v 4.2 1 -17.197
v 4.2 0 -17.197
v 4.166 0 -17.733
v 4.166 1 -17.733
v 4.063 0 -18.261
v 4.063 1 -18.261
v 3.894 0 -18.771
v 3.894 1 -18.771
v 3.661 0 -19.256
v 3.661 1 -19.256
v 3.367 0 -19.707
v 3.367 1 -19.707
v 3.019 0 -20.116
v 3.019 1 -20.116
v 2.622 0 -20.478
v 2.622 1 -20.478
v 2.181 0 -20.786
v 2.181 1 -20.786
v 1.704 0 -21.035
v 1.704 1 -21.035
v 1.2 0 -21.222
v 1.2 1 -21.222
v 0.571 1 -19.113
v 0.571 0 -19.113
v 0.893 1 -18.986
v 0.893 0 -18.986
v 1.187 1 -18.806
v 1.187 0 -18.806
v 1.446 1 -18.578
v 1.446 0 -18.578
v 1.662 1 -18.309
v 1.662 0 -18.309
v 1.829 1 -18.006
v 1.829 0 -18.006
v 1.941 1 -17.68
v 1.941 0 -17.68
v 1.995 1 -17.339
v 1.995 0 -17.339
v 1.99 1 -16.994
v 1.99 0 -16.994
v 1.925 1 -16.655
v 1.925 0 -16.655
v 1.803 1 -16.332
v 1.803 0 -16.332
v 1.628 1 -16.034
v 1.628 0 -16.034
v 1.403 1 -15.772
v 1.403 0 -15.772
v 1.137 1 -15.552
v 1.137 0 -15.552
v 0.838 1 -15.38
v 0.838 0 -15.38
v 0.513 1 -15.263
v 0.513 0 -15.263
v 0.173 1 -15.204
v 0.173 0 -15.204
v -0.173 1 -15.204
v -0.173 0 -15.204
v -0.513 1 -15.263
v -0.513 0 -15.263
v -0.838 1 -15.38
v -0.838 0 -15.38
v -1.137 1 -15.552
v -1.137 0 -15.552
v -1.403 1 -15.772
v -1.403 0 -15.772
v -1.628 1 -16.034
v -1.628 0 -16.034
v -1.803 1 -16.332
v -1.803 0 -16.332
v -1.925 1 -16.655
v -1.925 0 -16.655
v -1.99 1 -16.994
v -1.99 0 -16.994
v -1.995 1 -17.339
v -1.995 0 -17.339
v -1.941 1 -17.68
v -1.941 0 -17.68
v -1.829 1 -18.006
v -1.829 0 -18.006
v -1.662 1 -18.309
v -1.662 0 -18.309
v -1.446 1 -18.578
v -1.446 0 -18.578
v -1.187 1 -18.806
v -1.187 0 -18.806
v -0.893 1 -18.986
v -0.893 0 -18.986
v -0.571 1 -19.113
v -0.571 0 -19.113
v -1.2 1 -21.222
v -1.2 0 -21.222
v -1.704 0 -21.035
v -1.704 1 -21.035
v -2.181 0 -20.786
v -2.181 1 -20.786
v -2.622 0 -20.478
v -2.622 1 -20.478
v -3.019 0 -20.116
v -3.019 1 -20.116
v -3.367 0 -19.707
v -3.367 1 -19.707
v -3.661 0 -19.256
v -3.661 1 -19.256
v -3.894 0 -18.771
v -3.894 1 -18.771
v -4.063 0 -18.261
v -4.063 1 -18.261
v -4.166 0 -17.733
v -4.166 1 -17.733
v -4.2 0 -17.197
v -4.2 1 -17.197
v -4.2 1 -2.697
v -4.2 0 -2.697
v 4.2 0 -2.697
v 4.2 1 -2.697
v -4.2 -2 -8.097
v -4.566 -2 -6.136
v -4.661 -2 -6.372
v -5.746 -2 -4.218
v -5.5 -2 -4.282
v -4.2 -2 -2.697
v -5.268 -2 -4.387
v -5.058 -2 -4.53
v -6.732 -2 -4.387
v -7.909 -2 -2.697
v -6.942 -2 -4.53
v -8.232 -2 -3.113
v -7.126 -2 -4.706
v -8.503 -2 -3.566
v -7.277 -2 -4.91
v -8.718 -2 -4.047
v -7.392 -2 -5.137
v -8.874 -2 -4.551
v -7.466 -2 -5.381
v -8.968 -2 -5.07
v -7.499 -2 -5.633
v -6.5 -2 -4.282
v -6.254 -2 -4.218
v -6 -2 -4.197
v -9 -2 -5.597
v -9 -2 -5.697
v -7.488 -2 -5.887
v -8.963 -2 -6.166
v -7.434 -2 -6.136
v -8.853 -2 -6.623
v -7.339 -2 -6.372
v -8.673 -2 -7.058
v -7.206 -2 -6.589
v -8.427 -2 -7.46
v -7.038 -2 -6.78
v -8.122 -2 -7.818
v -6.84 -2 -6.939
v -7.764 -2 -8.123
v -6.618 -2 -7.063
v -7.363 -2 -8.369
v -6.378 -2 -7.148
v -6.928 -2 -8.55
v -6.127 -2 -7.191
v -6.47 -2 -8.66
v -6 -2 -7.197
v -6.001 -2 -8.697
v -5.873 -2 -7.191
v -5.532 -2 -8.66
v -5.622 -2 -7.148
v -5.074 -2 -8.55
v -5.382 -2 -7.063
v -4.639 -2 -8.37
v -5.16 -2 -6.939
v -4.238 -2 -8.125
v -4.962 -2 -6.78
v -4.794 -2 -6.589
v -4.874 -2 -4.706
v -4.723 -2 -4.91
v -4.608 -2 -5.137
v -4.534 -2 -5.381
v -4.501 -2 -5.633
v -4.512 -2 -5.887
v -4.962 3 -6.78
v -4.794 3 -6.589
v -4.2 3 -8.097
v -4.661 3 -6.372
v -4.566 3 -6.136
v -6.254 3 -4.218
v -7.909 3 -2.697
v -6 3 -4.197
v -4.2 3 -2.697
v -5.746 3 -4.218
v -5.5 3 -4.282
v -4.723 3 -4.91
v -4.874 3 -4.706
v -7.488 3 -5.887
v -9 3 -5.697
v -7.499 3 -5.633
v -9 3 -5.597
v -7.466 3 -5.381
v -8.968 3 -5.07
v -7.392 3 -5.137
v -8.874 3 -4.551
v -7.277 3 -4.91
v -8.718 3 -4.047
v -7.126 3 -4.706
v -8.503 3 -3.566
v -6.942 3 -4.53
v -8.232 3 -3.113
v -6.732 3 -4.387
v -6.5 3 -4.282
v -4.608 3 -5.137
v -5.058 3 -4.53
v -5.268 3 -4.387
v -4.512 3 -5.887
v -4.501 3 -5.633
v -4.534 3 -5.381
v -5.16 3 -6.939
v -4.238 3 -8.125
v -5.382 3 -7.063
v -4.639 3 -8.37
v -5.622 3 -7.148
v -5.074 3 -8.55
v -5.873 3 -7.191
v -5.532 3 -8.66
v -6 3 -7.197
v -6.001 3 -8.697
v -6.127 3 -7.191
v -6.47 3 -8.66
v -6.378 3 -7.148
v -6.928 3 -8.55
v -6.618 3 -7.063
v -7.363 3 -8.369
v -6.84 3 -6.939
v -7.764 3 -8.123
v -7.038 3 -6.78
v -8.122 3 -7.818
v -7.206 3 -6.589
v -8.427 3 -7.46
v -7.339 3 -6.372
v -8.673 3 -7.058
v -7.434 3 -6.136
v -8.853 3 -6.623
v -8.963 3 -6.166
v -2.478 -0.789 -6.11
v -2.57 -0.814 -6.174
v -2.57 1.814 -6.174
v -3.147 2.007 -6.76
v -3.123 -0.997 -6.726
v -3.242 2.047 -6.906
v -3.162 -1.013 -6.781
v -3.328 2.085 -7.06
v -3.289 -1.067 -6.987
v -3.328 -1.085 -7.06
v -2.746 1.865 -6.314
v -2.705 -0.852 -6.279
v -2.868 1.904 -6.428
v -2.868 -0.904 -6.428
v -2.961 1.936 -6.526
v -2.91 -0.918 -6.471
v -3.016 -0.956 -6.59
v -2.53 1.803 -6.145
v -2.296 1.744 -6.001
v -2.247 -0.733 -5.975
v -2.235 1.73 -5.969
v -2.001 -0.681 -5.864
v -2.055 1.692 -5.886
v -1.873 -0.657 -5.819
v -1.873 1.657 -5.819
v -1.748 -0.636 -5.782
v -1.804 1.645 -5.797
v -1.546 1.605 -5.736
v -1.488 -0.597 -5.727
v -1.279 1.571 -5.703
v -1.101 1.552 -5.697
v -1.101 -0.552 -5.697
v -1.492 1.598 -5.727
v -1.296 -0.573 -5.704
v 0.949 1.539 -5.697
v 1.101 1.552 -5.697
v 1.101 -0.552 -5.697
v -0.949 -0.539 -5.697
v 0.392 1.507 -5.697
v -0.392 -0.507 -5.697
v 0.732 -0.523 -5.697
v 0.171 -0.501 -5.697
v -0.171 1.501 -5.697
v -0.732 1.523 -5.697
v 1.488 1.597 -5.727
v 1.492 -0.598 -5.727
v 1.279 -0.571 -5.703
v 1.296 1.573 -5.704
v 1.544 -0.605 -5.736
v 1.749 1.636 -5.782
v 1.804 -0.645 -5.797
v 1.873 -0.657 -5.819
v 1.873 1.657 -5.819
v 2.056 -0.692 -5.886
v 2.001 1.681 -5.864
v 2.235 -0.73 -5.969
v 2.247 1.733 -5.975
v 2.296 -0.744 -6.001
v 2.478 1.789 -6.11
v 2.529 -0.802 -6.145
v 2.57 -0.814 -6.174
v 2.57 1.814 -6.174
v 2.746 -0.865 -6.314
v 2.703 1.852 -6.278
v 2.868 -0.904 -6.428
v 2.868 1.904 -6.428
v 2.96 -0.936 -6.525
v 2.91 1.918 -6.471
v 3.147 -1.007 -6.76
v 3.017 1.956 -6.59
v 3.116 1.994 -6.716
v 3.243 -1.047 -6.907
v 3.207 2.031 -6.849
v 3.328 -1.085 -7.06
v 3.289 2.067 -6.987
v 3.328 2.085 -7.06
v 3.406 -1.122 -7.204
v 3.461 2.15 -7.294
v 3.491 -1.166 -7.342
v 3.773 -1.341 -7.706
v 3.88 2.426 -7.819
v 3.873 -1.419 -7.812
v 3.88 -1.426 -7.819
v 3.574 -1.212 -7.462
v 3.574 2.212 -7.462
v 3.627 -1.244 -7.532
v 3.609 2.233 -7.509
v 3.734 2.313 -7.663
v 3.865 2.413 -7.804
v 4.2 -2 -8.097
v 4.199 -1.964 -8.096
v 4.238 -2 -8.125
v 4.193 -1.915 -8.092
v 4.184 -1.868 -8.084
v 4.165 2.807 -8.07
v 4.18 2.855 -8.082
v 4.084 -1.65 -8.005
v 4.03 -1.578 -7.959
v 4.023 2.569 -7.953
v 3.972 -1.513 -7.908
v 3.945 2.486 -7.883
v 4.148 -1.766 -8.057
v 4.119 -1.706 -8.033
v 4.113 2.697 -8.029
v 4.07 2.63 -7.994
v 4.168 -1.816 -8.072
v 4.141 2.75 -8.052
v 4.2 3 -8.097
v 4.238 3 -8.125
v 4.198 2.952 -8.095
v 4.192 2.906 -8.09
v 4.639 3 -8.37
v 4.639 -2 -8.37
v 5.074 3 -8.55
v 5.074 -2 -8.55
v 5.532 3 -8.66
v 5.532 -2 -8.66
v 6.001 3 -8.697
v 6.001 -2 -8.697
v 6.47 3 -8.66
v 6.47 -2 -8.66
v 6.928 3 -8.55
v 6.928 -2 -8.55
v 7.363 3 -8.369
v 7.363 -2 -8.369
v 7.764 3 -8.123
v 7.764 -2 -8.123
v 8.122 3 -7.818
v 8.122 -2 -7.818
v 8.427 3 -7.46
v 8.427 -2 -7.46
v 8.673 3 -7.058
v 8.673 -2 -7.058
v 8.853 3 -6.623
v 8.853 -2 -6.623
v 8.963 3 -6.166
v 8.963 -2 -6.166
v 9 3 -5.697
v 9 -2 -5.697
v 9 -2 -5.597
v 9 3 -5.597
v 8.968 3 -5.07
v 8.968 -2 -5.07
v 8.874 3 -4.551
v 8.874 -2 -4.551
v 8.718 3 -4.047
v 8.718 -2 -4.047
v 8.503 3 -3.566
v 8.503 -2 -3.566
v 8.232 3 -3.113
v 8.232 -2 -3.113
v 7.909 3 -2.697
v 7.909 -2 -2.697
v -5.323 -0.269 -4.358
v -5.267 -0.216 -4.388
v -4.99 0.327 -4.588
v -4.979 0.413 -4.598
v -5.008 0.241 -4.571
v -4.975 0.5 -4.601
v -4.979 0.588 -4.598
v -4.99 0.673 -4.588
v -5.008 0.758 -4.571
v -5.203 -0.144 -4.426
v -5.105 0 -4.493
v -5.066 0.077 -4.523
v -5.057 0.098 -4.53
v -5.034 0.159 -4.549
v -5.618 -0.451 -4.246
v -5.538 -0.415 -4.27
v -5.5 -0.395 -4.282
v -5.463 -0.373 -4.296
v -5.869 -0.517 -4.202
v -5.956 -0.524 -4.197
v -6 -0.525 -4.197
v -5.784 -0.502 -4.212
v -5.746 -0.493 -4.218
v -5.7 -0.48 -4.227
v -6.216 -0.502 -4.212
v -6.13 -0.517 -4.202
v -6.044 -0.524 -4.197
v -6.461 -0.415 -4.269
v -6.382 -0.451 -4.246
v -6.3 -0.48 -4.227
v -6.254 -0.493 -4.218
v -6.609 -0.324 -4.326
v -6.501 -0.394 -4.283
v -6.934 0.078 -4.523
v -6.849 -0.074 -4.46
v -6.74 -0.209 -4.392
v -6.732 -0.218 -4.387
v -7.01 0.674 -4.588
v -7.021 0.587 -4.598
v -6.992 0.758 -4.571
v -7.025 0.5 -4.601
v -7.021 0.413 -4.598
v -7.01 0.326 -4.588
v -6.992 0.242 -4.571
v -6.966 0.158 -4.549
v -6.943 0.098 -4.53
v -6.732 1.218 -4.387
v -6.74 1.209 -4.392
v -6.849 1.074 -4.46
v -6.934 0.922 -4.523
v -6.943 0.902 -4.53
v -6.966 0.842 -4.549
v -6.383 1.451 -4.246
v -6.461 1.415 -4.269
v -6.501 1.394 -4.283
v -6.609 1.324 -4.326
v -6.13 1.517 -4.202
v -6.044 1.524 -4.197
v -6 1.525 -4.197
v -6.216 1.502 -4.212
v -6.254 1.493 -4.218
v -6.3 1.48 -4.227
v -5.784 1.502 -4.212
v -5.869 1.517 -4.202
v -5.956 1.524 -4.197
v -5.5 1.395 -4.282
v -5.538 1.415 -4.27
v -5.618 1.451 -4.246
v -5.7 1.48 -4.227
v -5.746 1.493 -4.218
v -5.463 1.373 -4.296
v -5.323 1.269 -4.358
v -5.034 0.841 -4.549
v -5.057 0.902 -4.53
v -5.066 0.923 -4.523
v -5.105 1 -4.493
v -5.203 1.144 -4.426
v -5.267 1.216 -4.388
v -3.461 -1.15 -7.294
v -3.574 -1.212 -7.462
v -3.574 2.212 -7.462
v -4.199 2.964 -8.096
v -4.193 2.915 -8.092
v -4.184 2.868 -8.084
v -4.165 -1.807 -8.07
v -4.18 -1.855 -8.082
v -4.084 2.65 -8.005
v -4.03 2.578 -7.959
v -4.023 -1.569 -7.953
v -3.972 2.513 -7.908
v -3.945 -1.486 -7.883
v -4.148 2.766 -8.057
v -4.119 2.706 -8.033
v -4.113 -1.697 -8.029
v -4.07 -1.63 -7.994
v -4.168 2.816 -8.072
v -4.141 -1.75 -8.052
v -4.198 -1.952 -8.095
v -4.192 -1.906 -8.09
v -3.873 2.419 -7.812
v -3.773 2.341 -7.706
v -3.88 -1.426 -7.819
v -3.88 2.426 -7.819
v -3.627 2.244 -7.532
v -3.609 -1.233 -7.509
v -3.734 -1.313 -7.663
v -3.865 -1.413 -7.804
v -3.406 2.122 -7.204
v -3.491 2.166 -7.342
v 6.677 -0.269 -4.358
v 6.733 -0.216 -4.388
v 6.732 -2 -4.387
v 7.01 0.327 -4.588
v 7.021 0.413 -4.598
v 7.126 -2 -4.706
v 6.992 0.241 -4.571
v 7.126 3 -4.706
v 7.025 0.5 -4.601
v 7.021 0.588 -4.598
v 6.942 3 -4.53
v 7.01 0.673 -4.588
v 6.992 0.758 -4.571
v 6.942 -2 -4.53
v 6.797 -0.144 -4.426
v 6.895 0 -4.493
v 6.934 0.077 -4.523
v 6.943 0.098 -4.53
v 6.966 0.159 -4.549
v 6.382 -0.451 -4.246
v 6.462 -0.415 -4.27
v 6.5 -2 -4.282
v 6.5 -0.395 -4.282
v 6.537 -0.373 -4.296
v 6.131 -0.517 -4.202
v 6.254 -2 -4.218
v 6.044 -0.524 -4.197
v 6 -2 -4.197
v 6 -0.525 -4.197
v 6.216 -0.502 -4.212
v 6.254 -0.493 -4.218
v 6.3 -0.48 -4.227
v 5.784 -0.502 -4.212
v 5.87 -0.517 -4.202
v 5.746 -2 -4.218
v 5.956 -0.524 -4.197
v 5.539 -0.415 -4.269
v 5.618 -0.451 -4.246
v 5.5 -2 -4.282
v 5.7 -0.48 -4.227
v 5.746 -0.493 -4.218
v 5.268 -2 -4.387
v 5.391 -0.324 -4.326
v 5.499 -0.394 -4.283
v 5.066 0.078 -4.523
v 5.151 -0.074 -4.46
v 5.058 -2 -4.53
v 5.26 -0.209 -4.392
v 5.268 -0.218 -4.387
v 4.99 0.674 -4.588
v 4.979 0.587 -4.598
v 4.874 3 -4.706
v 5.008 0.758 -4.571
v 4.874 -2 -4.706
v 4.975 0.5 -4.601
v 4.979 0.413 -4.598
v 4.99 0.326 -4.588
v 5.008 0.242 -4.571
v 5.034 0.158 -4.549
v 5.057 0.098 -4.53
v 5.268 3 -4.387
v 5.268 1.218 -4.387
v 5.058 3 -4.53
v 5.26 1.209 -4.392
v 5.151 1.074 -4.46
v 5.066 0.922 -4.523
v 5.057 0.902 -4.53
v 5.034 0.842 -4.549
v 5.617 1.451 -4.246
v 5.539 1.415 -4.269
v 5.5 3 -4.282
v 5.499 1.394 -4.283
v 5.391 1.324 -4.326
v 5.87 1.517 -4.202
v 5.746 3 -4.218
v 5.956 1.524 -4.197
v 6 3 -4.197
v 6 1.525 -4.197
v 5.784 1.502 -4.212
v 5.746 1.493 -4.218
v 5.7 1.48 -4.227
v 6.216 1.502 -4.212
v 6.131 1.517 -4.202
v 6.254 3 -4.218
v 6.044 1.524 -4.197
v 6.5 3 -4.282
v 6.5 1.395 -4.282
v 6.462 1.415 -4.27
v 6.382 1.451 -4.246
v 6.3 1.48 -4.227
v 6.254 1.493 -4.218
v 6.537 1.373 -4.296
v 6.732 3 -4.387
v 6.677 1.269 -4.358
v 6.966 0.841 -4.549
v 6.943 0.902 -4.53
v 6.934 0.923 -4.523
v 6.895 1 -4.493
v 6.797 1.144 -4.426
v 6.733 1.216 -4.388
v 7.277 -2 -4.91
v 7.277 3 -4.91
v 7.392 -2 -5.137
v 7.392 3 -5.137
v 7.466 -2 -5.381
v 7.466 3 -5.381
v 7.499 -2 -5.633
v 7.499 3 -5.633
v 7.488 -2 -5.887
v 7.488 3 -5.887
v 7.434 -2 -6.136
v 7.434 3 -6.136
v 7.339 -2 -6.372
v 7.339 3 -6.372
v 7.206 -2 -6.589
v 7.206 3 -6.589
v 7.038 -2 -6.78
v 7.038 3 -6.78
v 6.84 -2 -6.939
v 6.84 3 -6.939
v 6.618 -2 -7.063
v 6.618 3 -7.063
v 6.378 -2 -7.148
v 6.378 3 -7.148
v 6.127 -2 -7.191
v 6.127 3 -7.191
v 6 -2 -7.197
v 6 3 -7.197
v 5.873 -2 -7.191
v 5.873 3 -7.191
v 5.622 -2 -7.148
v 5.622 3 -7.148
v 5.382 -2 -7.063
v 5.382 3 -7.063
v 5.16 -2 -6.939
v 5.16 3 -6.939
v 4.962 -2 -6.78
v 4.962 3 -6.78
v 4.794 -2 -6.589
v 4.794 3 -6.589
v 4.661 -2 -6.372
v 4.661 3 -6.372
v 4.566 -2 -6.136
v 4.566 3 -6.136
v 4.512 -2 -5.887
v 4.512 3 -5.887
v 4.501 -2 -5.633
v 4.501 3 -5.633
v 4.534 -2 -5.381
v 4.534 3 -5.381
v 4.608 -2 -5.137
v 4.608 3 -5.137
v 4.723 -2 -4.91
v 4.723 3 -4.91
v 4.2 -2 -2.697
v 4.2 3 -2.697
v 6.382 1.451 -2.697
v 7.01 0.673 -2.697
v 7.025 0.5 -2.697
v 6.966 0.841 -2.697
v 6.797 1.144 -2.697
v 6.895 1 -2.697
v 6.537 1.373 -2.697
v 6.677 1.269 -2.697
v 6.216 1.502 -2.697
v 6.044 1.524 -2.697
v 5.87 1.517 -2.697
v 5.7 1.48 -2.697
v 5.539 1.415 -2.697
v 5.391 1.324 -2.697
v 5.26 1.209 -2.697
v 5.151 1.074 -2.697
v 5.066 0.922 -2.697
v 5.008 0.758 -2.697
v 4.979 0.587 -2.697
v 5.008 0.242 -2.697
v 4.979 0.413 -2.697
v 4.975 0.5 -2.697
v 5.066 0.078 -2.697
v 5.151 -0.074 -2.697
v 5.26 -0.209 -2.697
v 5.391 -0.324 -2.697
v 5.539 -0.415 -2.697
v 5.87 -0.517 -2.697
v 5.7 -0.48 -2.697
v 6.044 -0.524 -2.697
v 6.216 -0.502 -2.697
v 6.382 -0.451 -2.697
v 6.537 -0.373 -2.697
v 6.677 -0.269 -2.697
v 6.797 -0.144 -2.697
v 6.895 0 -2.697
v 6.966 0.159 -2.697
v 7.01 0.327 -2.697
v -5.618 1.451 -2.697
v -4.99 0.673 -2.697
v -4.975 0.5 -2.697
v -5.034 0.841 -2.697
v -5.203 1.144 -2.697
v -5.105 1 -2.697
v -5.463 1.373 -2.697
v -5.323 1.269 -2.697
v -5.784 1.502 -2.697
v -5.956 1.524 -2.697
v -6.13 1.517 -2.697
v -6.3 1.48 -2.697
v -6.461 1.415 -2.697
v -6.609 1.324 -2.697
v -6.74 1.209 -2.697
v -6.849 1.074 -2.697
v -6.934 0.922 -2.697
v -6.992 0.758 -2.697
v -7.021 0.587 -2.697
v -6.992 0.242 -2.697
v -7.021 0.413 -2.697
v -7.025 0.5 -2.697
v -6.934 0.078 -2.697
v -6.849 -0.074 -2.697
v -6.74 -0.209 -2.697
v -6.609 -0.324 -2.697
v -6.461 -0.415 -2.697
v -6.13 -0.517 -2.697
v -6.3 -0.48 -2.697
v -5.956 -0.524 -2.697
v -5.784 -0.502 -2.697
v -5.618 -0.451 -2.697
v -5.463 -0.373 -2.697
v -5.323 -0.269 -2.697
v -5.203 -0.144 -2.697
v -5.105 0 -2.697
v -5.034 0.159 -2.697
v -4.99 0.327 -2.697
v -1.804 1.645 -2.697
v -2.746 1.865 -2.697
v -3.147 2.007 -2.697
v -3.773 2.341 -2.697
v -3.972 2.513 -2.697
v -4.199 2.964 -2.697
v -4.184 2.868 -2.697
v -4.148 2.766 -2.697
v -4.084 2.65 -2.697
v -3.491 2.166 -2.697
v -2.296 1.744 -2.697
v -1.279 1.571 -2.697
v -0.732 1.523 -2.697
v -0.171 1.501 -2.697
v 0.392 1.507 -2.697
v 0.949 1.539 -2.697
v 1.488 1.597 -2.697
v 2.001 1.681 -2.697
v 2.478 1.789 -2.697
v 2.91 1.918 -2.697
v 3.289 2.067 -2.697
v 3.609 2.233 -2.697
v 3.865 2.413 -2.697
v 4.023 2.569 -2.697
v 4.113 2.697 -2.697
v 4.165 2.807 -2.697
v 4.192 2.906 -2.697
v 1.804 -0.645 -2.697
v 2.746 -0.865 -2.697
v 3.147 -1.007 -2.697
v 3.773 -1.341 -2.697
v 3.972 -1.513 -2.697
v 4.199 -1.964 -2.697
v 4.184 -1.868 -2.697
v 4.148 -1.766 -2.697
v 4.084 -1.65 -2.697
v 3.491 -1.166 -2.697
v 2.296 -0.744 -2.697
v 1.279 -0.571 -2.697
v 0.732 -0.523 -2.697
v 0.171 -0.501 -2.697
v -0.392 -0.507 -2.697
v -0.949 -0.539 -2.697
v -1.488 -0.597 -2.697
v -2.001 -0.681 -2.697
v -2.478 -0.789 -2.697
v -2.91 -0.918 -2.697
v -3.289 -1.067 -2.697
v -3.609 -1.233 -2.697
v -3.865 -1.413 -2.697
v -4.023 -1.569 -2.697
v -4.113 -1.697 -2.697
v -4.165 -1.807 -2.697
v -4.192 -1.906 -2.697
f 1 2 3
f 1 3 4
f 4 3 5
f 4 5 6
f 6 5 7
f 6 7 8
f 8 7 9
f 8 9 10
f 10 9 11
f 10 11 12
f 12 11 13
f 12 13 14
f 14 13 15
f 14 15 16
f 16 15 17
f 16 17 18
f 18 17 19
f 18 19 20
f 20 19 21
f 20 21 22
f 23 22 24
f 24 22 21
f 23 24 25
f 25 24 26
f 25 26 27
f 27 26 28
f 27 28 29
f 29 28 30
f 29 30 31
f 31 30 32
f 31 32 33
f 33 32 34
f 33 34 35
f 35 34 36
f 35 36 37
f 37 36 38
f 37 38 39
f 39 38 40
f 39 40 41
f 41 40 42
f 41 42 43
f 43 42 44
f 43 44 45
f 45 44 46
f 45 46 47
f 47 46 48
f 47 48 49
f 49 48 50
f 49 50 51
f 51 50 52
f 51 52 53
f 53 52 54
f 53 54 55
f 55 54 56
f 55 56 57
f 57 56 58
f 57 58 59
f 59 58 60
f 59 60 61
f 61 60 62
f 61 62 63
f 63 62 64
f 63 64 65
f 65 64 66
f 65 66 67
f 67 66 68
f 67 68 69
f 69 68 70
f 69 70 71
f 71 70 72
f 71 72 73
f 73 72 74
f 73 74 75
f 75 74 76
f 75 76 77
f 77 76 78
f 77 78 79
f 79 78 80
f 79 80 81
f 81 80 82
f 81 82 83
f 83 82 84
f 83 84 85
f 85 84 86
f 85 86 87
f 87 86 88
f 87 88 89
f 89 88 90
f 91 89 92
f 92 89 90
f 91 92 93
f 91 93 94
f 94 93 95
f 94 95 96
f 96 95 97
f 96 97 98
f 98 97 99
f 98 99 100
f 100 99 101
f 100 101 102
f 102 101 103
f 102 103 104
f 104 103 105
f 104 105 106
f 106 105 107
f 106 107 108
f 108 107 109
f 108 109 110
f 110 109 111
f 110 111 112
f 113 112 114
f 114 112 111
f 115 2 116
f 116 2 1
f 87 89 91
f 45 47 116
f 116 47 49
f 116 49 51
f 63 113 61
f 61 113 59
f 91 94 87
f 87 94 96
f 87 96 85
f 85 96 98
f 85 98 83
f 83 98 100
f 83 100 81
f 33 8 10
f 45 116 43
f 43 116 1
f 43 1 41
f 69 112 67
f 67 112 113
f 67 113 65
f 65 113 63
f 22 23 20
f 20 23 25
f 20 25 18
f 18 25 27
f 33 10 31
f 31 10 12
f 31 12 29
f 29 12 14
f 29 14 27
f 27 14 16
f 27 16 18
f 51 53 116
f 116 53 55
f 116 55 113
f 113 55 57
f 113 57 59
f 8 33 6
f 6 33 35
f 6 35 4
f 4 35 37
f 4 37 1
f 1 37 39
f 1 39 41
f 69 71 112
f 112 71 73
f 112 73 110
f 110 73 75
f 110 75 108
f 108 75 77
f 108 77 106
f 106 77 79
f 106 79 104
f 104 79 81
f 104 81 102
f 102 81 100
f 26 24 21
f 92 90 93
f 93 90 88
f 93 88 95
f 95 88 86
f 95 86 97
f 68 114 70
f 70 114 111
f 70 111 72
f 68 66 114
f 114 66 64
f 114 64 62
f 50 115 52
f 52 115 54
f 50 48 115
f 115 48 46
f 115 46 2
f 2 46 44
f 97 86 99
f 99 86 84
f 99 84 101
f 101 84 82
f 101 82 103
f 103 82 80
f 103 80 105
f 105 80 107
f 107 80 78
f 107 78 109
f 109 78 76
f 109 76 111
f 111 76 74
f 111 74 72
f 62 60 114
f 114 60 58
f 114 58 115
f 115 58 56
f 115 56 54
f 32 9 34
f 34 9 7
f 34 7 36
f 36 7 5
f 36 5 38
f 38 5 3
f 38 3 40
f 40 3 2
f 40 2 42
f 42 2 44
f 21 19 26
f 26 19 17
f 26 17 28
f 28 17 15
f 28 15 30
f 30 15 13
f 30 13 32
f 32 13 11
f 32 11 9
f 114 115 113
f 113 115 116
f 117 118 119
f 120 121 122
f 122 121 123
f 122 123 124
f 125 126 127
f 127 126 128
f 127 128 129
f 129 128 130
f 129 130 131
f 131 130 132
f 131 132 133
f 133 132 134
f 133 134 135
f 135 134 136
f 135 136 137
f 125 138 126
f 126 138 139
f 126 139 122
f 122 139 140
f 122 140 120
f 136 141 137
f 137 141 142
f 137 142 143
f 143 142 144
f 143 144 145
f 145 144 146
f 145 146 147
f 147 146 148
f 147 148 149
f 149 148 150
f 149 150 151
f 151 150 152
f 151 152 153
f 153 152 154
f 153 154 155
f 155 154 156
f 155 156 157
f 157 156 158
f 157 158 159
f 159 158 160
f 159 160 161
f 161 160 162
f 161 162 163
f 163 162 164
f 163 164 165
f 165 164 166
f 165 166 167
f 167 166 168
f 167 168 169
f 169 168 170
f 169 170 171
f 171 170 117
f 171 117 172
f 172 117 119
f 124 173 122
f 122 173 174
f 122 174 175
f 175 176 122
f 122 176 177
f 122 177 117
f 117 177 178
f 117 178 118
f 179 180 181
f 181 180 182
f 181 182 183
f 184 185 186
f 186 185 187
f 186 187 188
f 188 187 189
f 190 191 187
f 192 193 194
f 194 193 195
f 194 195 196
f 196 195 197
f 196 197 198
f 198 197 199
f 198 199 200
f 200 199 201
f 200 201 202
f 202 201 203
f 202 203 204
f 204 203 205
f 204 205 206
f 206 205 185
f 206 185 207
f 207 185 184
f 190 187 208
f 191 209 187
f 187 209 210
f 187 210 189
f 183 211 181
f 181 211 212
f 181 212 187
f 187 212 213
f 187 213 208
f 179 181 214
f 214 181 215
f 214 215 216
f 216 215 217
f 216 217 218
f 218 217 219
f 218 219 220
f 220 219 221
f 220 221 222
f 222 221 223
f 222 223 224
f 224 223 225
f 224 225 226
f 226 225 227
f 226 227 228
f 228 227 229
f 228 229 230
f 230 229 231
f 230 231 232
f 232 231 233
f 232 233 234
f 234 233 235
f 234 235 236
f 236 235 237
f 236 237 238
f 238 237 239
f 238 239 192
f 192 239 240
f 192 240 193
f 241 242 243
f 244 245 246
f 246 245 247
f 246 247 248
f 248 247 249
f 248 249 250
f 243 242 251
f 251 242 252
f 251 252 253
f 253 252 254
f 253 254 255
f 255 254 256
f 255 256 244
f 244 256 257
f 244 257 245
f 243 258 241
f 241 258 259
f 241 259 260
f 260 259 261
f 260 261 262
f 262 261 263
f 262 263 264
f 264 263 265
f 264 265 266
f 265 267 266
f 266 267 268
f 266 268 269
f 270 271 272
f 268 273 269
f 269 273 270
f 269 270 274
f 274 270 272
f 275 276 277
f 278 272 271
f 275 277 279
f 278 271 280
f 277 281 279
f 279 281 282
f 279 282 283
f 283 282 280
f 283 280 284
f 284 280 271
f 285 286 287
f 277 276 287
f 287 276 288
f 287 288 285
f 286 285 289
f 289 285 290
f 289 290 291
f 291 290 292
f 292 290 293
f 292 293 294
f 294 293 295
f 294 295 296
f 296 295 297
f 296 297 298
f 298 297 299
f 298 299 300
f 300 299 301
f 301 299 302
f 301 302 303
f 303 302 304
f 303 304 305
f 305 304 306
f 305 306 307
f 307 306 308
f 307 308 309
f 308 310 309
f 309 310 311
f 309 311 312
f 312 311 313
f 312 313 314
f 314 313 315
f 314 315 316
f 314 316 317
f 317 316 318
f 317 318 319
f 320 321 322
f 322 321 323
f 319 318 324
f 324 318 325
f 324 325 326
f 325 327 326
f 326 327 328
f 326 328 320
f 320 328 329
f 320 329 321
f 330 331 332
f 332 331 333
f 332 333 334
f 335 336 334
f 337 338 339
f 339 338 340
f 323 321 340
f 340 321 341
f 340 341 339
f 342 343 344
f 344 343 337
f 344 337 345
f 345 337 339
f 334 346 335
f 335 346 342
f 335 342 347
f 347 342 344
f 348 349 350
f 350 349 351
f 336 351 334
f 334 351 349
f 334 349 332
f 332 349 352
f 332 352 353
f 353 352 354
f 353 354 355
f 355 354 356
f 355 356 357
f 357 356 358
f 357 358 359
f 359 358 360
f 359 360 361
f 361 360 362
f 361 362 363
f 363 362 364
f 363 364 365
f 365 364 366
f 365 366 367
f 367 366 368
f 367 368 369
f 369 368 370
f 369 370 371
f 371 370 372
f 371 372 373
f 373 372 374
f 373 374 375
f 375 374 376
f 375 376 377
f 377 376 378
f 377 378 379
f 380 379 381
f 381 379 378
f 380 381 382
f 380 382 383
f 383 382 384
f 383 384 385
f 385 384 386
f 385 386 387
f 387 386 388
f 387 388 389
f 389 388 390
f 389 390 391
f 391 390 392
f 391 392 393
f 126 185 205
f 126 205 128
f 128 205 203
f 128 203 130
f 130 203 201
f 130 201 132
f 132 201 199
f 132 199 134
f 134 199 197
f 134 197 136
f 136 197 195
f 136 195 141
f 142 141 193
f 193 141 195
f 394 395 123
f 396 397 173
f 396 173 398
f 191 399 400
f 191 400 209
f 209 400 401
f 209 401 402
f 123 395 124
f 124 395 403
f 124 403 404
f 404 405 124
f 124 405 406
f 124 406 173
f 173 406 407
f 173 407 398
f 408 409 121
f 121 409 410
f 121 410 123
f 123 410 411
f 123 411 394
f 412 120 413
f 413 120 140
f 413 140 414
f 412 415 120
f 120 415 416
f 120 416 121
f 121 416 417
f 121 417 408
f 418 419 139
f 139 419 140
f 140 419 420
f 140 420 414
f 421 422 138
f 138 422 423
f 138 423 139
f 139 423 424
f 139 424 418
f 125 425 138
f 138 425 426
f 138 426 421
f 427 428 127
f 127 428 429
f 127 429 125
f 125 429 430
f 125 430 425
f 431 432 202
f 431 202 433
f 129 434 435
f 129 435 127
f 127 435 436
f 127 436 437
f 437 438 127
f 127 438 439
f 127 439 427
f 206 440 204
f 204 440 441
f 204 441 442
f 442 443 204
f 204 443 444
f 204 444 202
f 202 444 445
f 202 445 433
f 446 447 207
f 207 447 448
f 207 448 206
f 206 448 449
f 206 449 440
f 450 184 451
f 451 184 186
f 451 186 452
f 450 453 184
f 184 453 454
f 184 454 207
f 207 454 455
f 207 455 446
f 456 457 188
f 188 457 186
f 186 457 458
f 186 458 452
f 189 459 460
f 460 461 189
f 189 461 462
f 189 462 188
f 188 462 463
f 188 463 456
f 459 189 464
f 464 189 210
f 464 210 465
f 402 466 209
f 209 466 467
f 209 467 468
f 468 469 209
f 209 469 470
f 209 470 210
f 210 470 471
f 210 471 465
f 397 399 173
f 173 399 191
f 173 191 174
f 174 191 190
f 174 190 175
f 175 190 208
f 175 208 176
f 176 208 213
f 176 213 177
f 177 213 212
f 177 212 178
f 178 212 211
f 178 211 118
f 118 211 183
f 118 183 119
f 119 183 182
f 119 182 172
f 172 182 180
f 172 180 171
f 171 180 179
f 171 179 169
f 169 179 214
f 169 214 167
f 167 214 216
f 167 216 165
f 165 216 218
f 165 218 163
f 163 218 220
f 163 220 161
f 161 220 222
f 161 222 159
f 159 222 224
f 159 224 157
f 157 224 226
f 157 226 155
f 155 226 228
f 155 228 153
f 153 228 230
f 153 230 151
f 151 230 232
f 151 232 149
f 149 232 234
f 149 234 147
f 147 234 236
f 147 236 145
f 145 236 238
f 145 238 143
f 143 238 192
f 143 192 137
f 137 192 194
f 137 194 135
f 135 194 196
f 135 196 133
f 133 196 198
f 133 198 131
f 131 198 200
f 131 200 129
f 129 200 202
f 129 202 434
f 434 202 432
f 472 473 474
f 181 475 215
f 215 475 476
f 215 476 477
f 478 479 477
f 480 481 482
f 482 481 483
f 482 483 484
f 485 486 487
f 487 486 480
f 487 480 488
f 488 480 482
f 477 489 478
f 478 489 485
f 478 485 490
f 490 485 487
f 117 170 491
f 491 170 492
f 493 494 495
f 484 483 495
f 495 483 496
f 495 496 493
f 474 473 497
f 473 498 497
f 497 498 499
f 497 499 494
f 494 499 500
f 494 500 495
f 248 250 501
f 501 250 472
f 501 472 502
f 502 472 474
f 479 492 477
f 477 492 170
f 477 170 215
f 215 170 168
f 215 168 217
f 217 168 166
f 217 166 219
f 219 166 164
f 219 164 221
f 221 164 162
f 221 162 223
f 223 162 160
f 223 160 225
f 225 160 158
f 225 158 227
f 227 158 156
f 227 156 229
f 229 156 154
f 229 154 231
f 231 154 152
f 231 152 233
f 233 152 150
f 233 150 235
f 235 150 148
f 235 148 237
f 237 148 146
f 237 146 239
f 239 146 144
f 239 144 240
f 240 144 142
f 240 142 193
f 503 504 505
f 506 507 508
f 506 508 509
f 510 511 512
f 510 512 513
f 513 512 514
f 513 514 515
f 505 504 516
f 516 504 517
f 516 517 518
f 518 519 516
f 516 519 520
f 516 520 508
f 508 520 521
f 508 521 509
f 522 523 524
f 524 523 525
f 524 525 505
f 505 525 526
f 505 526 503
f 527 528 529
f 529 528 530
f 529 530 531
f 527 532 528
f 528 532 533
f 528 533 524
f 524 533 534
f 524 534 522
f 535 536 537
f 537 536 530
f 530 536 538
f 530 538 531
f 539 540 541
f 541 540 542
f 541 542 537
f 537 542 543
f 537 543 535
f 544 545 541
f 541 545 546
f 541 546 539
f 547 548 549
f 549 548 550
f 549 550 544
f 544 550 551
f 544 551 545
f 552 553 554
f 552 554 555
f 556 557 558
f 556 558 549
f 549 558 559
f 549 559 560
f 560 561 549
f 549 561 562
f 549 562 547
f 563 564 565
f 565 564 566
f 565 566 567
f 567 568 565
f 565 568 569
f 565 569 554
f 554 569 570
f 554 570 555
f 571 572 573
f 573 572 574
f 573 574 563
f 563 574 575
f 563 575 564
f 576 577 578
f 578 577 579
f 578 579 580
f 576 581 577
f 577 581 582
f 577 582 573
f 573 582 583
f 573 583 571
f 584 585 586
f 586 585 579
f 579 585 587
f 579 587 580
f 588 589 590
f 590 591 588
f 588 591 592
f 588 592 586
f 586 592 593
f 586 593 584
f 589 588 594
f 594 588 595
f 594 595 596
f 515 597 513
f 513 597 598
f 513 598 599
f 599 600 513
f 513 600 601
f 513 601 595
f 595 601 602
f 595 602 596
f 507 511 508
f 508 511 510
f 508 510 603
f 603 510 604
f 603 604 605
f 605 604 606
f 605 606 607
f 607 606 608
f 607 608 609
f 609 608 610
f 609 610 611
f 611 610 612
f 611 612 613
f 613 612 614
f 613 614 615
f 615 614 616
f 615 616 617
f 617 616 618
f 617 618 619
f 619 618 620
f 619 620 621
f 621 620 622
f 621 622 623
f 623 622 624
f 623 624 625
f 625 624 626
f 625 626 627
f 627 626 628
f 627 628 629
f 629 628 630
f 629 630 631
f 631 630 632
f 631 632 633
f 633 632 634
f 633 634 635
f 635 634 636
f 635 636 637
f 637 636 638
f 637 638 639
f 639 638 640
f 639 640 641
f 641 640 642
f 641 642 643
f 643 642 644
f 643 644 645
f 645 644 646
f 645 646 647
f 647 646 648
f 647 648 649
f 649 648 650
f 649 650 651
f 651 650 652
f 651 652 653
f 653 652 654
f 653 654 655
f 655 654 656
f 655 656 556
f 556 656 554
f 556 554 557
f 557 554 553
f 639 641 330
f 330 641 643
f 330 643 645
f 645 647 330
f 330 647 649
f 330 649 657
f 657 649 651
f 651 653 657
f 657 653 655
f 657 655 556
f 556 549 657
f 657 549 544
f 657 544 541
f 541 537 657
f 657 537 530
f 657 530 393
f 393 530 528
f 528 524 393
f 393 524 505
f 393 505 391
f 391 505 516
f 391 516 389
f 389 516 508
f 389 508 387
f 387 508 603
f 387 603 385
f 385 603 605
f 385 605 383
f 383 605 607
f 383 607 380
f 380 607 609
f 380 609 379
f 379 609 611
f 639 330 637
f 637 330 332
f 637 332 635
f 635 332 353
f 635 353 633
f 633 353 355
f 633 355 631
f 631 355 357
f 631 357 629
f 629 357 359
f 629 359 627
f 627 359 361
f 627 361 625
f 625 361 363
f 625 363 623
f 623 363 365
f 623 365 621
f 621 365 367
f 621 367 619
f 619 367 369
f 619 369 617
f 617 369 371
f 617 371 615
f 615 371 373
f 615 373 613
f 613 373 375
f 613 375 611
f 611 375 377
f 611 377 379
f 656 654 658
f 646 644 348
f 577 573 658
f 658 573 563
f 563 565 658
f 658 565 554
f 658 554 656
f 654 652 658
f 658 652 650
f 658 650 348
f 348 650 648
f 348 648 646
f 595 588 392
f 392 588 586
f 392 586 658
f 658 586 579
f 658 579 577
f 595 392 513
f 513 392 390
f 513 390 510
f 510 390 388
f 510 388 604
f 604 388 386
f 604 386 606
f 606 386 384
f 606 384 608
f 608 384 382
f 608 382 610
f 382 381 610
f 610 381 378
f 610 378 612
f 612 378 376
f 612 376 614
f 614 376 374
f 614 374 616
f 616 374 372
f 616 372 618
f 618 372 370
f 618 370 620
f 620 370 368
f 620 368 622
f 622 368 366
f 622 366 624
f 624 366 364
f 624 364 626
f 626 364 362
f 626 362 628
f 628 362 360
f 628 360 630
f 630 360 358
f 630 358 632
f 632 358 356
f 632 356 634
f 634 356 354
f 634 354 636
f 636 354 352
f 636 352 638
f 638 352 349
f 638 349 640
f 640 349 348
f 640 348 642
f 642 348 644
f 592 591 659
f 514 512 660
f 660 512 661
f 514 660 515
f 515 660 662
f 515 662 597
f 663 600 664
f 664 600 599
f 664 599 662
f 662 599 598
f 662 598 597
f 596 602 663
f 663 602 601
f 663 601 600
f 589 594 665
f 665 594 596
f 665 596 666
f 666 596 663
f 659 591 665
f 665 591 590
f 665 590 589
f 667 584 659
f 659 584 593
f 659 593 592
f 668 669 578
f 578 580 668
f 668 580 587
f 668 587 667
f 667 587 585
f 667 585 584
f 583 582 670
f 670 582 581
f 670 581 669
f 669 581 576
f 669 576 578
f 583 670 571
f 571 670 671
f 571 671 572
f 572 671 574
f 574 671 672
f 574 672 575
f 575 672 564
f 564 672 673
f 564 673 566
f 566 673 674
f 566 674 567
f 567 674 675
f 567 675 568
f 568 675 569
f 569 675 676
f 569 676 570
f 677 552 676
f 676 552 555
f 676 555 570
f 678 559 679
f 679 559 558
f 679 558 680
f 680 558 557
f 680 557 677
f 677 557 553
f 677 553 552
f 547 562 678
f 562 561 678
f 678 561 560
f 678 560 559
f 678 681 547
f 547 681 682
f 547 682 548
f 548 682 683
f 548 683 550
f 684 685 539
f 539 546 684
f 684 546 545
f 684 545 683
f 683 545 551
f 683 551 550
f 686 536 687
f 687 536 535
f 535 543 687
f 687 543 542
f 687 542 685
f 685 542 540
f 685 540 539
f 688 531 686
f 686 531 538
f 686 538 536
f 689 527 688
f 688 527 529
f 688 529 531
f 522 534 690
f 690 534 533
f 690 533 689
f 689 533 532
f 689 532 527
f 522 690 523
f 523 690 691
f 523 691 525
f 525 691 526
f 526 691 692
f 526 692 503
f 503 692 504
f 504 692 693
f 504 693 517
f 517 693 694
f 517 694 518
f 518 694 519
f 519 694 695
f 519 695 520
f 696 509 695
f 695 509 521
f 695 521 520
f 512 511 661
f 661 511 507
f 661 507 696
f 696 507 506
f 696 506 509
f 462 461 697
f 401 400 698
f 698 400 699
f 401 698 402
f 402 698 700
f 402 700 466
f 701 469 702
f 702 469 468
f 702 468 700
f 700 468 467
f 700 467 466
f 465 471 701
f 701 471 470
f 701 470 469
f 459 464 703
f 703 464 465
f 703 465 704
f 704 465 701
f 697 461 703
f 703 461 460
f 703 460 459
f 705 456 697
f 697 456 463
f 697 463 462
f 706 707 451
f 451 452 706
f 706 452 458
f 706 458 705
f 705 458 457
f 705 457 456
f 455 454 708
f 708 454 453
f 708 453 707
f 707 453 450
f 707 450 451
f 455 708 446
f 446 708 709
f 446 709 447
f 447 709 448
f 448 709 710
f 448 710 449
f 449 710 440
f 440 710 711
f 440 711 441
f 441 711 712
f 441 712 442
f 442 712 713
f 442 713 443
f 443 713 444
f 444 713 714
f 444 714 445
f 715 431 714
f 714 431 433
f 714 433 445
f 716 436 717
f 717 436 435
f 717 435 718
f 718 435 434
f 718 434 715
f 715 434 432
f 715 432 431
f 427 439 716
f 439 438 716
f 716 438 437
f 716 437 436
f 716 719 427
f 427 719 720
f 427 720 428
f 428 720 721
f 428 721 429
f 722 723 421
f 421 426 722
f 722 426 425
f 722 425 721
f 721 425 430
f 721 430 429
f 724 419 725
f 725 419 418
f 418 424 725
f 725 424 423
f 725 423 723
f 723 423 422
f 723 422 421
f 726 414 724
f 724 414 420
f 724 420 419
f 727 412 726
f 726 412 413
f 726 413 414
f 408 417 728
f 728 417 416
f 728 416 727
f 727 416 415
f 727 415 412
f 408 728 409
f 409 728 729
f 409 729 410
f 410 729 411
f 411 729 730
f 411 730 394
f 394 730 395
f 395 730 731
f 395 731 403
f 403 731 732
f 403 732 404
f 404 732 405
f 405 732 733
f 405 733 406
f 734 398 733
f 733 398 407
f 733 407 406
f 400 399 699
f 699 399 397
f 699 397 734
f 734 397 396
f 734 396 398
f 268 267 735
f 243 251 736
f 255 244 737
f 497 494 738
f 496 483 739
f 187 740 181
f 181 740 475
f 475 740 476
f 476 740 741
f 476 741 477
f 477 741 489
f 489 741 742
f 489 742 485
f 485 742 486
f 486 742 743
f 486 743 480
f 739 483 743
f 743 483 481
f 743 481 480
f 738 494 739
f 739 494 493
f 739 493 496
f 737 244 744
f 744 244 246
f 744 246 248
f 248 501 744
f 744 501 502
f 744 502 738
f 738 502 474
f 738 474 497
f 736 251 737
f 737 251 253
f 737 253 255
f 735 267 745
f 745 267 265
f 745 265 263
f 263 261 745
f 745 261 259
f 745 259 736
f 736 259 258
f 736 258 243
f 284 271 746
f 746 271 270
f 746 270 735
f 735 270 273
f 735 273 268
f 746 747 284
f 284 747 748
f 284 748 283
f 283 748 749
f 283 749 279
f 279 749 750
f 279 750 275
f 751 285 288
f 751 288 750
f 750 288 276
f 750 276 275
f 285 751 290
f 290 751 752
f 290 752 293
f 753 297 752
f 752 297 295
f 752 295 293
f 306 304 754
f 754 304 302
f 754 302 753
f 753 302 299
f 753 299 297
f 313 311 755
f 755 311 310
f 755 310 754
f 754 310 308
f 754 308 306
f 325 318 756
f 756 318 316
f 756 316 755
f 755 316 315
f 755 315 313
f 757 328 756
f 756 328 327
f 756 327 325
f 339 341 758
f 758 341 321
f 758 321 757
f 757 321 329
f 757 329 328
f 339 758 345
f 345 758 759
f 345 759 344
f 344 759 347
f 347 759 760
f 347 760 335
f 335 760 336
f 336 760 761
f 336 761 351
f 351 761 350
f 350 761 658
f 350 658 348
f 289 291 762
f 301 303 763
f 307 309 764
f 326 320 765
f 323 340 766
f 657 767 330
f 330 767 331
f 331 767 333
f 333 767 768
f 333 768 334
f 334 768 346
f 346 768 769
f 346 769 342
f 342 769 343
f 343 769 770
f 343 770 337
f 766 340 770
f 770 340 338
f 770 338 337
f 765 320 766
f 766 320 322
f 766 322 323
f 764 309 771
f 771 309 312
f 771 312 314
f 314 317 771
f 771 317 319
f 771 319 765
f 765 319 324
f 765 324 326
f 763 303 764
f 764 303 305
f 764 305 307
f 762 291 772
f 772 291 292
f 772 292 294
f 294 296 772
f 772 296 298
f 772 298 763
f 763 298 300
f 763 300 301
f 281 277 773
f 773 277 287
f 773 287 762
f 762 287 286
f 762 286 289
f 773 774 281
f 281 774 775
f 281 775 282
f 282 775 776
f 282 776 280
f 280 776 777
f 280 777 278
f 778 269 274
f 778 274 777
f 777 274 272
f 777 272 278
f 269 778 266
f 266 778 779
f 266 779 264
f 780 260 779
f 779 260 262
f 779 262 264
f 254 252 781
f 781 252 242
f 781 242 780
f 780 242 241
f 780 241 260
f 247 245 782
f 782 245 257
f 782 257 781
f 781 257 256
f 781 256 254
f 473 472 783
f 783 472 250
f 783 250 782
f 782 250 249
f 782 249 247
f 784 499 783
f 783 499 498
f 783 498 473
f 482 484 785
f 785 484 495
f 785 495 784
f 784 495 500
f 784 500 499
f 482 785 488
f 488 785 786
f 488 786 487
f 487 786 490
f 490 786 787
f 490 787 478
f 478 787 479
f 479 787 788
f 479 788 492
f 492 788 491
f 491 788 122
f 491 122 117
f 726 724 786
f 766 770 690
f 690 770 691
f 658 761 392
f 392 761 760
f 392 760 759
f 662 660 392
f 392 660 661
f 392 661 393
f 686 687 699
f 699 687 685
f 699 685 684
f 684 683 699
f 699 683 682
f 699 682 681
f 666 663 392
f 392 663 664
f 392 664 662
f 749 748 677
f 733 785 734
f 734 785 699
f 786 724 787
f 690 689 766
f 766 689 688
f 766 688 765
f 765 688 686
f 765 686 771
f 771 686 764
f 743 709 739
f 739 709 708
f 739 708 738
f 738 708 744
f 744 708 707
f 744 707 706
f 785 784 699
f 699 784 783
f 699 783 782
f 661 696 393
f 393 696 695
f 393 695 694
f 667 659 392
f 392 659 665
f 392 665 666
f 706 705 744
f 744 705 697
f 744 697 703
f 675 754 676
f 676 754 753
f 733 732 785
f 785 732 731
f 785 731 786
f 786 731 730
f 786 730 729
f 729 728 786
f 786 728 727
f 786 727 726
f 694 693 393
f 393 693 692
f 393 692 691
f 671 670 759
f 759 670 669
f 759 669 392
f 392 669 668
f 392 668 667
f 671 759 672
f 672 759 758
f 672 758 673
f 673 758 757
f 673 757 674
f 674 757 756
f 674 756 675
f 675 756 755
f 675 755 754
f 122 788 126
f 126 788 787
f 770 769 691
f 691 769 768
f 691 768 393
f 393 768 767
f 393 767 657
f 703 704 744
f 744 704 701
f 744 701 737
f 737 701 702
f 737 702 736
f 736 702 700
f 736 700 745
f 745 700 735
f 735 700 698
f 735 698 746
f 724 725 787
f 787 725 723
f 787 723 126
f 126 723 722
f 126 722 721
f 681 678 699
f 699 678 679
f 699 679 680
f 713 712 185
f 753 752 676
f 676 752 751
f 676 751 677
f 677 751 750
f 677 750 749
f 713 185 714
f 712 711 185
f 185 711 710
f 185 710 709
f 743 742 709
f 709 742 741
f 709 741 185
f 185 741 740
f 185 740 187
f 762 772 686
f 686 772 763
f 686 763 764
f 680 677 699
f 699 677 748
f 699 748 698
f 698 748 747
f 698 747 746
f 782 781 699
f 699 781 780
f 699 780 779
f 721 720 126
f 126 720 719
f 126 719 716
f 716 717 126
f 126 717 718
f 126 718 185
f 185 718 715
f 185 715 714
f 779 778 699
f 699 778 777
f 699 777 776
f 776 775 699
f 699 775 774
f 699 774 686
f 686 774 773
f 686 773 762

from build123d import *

# Parameters (mm, degrees)
BOSS_EXTRUDE1_DEPTH     = 1
BOSS_EXTRUDE2_START     = -3
SKETCH3_R               = 1.5
BOSS_EXTRUDE2_DEPTH     = 5
CUT_EXTRUDE1_START      = -3.40484
SKETCH4_R               = 1.025
CUT_EXTRUDE1_DEPTH      = 3.388831
SKETCH5_RX              = 4.2
SKETCH5_RY              = 1.5
CUT_EXTRUDE2_DEPTH      = 16.524922359
CUT_EXTRUDE2_DEPTH_BACK = 5.5000001
SKETCH6_W               = 18
SKETCH6_H               = 1.5
CUT_EXTRUDE3_DEPTH      = 5


with BuildPart() as part:
    # Sketch2 → Boss-Extrude1 (new body)
    with BuildSketch(Plane(origin=(0, 0, 0), x_dir=(1, 0, 0), z_dir=(0, 1, 0))):
        with BuildLine():
            Line((-0.571428571, 19.113275972), (-1.2, 21.221568636))
            ThreePointArc((-1.2, 21.221568636), (-3.367491648, 19.706626356), (-4.2, 17.196646277))
            Line((-4.2, 17.196646277), (-4.2, 1.196646277))
            Line((-4.2, 1.196646277), (4.2, 1.196646277))
            Line((4.2, 1.196646277), (4.2, 17.196646277))
            ThreePointArc((4.2, 17.196646277), (3.367491648, 19.706626356), (1.2, 21.221568636))
            Line((1.2, 21.221568636), (0.571428571, 19.113275972))
            ThreePointArc((0.571428571, 19.113275972), (0, 15.196646277), (-0.571428571, 19.113275972))
        make_face()
    extrude(amount=BOSS_EXTRUDE1_DEPTH)


with BuildPart() as body_2:
    # Sketch3 → Boss-Extrude2 (new body)
    with BuildSketch(Plane.XZ.offset(BOSS_EXTRUDE2_START)):
        with BuildLine():
            ThreePointArc((9, -5.596646277), (7.711269837, -2.485376439), (4.6, -1.196646277))
            Line((4.6, -1.196646277), (-4.6, -1.196646277))
            ThreePointArc((-4.6, -1.196646277), (-7.711269837, -2.485376439), (-9, -5.596646277))
            Line((-9, -5.596646277), (-9, -5.696646277))
            ThreePointArc((-9, -5.696646277), (-8.121320344, -7.81796662), (-6, -8.696646277))
            ThreePointArc((-6, -8.696646277), (-4.433301096, -8.255054873), (-3.327829372, -7.06028264))
            ThreePointArc((-3.327829372, -7.06028264), (-2.406602934, -6.064639113), (-1.101020514, -5.696646277))
            Line((-1.101020514, -5.696646277), (1.101020514, -5.696646277))
            ThreePointArc((1.101020514, -5.696646277), (2.406602934, -6.064639113), (3.327829372, -7.06028264))
            ThreePointArc((3.327829372, -7.06028264), (4.433301096, -8.255054873), (6, -8.696646277))
            ThreePointArc((6, -8.696646277), (8.121320344, -7.81796662), (9, -5.696646277))
            Line((9, -5.696646277), (9, -5.596646277))
        make_face()
        with Locations((-6, -5.696646277)):
            Circle(SKETCH3_R, mode=Mode.SUBTRACT)
        with Locations((6, -5.696646277)):
            Circle(SKETCH3_R, mode=Mode.SUBTRACT)
    extrude(amount=BOSS_EXTRUDE2_DEPTH)

    # Sketch4 → Cut-Extrude1 (cut)
    with BuildSketch(Plane.XY.offset(-1.196646277).offset(CUT_EXTRUDE1_START)):
        with Locations((-6, 0.5)):
            Circle(SKETCH4_R)
        with Locations((6, 0.5)):
            Circle(SKETCH4_R)
    extrude(amount=CUT_EXTRUDE1_DEPTH, mode=Mode.SUBTRACT)

    # Sketch5 → Cut-Extrude2 (cut, two sides)
    with BuildSketch(Plane(origin=(0, 0, -5.696646277), x_dir=(-1, 0, 0), z_dir=(0, 0, -1))) as cut_extrude2_sk:
        with Locations(Location((0, 3), (0, 0, 180))):
            Ellipse(SKETCH5_RX, SKETCH5_RY)
        with Locations((0, -2)):
            Ellipse(SKETCH5_RX, SKETCH5_RY)
    extrude(amount=CUT_EXTRUDE2_DEPTH, mode=Mode.SUBTRACT)
    extrude(cut_extrude2_sk.sketch, amount=-CUT_EXTRUDE2_DEPTH_BACK, mode=Mode.SUBTRACT)


with BuildPart() as cut_extrude3_tool:
    # Sketch6 → Cut-Extrude3 (new body)
    with BuildSketch(Plane.XZ.offset(2)):
        with Locations((0, -1.946646277)):
            Rectangle(SKETCH6_W, SKETCH6_H)
    extrude(amount=-CUT_EXTRUDE3_DEPTH)


with BuildPart() as part_1:
    add(part.part)

    # Cut-Extrude3: cut by cut_extrude3_tool
    add(cut_extrude3_tool.part, mode=Mode.SUBTRACT)


with BuildPart() as body_2_1:
    add(body_2.part)

    # Cut-Extrude3: cut by cut_extrude3_tool
    add(cut_extrude3_tool.part, mode=Mode.SUBTRACT)


solid = Compound([part_1.part, body_2_1.part])
